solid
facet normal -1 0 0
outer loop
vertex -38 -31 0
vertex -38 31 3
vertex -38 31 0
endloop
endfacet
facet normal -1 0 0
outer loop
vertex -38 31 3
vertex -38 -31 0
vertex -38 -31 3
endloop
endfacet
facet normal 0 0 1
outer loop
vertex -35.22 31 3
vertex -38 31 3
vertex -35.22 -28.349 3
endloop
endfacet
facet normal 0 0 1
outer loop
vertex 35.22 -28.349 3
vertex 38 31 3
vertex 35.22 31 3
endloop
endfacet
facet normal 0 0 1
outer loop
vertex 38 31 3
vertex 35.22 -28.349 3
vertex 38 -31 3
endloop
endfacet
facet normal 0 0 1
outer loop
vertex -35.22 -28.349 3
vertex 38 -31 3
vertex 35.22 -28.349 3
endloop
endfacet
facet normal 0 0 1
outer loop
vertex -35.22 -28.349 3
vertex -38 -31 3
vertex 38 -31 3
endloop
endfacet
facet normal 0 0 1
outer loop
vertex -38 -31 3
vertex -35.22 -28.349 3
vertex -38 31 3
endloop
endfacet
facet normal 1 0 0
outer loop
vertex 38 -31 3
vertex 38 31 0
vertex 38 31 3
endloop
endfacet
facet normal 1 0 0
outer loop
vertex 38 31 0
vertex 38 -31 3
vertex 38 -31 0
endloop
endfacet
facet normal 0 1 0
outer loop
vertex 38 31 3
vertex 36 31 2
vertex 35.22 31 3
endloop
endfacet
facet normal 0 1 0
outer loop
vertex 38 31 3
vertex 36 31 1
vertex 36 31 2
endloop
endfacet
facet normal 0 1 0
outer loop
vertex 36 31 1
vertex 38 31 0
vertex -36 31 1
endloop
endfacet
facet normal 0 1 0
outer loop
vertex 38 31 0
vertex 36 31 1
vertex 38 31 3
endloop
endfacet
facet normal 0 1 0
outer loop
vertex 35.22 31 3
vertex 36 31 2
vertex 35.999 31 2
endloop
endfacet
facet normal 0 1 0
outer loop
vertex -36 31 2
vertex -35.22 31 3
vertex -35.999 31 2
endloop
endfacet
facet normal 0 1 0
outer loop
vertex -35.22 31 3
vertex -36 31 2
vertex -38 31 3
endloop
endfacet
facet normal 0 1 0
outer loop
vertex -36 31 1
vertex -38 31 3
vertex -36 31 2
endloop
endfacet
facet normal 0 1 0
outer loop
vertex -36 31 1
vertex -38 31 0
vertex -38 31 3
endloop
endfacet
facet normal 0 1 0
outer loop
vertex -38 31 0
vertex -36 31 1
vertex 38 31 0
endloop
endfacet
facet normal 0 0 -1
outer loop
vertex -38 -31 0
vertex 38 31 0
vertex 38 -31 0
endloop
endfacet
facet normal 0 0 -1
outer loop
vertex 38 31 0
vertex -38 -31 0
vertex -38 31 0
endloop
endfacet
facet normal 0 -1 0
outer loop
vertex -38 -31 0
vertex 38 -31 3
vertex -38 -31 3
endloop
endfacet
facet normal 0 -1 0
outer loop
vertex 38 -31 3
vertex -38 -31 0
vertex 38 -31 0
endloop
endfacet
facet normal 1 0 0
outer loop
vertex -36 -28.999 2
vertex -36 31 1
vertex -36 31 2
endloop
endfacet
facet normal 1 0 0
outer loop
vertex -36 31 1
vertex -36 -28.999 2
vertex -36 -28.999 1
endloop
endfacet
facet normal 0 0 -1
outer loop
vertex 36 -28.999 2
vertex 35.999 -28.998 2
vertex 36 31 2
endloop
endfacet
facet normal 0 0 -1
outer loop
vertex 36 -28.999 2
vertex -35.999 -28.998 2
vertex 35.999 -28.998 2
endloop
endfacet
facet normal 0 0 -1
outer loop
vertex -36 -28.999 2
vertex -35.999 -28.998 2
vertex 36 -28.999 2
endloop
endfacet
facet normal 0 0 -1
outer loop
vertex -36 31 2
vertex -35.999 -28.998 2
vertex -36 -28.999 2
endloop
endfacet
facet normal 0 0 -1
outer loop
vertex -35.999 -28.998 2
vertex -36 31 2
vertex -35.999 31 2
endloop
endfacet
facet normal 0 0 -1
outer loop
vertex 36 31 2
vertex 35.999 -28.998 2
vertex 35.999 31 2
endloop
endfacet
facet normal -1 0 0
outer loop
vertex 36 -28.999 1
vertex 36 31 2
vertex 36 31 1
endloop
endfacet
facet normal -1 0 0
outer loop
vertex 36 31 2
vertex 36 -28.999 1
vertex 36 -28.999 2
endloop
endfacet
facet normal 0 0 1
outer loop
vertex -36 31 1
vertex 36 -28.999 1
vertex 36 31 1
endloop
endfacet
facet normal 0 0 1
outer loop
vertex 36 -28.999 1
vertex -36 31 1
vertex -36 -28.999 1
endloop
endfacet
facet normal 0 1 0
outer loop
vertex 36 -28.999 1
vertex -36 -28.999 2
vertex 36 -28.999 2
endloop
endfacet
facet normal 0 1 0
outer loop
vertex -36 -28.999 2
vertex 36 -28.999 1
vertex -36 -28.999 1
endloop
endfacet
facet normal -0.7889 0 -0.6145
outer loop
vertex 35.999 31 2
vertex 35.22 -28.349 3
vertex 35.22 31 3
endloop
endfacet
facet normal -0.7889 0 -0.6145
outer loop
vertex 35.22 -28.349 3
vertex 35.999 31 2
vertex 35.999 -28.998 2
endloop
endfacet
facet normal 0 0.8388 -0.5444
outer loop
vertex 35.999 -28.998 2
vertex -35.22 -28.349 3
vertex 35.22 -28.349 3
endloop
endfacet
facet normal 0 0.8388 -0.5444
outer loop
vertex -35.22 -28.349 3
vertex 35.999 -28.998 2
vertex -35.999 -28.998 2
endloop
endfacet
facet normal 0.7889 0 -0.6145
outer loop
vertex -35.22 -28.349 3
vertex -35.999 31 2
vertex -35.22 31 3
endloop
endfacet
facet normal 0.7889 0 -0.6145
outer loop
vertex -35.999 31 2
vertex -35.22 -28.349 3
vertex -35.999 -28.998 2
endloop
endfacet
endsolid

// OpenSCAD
// P. Bauermeister, 2017-03-04

inner_width = 72;
inner_length = 60;
vert_thickness = 1;
horiz_thickness = 2;
height = 3;
nook = 1;
ATOM = 0.001;

difference() {
	// positive plate
	translate([0, 0, height/2])
	cube([inner_width + horiz_thickness*2, inner_length + horiz_thickness, height], true);

	// plate cavity
	translate([0, horiz_thickness/2 + ATOM, nook/2 + vert_thickness])
	cube([inner_width, inner_length, nook], true);

	// pyramid cavity
	a = inner_width/2;
	b = inner_length/2;
	translate([0, horiz_thickness/2 + ATOM, vert_thickness + nook - ATOM])
	// https://en.wikibooks.org/wiki/OpenSCAD_User_Manual/Primitive_Solids#polyhedron
    polyhedron(
		points = [  // the four points at base
					[a, b*2, 0],
					[a, -b ,0],
					[-a, -b, 0],
					[-a ,b*2 ,0],
					// the apex point 
					[0, 0, (a+b)*.7]
				 ],
		faces =  [  // each triangle side
					[0, 1, 4],
					[1, 2, 4],
					[2, 3, 4],
					[3, 0, 4],
					// two triangles for square base
					[1, 0, 3],
					[2, 1, 3]
				 ]
    );
}
